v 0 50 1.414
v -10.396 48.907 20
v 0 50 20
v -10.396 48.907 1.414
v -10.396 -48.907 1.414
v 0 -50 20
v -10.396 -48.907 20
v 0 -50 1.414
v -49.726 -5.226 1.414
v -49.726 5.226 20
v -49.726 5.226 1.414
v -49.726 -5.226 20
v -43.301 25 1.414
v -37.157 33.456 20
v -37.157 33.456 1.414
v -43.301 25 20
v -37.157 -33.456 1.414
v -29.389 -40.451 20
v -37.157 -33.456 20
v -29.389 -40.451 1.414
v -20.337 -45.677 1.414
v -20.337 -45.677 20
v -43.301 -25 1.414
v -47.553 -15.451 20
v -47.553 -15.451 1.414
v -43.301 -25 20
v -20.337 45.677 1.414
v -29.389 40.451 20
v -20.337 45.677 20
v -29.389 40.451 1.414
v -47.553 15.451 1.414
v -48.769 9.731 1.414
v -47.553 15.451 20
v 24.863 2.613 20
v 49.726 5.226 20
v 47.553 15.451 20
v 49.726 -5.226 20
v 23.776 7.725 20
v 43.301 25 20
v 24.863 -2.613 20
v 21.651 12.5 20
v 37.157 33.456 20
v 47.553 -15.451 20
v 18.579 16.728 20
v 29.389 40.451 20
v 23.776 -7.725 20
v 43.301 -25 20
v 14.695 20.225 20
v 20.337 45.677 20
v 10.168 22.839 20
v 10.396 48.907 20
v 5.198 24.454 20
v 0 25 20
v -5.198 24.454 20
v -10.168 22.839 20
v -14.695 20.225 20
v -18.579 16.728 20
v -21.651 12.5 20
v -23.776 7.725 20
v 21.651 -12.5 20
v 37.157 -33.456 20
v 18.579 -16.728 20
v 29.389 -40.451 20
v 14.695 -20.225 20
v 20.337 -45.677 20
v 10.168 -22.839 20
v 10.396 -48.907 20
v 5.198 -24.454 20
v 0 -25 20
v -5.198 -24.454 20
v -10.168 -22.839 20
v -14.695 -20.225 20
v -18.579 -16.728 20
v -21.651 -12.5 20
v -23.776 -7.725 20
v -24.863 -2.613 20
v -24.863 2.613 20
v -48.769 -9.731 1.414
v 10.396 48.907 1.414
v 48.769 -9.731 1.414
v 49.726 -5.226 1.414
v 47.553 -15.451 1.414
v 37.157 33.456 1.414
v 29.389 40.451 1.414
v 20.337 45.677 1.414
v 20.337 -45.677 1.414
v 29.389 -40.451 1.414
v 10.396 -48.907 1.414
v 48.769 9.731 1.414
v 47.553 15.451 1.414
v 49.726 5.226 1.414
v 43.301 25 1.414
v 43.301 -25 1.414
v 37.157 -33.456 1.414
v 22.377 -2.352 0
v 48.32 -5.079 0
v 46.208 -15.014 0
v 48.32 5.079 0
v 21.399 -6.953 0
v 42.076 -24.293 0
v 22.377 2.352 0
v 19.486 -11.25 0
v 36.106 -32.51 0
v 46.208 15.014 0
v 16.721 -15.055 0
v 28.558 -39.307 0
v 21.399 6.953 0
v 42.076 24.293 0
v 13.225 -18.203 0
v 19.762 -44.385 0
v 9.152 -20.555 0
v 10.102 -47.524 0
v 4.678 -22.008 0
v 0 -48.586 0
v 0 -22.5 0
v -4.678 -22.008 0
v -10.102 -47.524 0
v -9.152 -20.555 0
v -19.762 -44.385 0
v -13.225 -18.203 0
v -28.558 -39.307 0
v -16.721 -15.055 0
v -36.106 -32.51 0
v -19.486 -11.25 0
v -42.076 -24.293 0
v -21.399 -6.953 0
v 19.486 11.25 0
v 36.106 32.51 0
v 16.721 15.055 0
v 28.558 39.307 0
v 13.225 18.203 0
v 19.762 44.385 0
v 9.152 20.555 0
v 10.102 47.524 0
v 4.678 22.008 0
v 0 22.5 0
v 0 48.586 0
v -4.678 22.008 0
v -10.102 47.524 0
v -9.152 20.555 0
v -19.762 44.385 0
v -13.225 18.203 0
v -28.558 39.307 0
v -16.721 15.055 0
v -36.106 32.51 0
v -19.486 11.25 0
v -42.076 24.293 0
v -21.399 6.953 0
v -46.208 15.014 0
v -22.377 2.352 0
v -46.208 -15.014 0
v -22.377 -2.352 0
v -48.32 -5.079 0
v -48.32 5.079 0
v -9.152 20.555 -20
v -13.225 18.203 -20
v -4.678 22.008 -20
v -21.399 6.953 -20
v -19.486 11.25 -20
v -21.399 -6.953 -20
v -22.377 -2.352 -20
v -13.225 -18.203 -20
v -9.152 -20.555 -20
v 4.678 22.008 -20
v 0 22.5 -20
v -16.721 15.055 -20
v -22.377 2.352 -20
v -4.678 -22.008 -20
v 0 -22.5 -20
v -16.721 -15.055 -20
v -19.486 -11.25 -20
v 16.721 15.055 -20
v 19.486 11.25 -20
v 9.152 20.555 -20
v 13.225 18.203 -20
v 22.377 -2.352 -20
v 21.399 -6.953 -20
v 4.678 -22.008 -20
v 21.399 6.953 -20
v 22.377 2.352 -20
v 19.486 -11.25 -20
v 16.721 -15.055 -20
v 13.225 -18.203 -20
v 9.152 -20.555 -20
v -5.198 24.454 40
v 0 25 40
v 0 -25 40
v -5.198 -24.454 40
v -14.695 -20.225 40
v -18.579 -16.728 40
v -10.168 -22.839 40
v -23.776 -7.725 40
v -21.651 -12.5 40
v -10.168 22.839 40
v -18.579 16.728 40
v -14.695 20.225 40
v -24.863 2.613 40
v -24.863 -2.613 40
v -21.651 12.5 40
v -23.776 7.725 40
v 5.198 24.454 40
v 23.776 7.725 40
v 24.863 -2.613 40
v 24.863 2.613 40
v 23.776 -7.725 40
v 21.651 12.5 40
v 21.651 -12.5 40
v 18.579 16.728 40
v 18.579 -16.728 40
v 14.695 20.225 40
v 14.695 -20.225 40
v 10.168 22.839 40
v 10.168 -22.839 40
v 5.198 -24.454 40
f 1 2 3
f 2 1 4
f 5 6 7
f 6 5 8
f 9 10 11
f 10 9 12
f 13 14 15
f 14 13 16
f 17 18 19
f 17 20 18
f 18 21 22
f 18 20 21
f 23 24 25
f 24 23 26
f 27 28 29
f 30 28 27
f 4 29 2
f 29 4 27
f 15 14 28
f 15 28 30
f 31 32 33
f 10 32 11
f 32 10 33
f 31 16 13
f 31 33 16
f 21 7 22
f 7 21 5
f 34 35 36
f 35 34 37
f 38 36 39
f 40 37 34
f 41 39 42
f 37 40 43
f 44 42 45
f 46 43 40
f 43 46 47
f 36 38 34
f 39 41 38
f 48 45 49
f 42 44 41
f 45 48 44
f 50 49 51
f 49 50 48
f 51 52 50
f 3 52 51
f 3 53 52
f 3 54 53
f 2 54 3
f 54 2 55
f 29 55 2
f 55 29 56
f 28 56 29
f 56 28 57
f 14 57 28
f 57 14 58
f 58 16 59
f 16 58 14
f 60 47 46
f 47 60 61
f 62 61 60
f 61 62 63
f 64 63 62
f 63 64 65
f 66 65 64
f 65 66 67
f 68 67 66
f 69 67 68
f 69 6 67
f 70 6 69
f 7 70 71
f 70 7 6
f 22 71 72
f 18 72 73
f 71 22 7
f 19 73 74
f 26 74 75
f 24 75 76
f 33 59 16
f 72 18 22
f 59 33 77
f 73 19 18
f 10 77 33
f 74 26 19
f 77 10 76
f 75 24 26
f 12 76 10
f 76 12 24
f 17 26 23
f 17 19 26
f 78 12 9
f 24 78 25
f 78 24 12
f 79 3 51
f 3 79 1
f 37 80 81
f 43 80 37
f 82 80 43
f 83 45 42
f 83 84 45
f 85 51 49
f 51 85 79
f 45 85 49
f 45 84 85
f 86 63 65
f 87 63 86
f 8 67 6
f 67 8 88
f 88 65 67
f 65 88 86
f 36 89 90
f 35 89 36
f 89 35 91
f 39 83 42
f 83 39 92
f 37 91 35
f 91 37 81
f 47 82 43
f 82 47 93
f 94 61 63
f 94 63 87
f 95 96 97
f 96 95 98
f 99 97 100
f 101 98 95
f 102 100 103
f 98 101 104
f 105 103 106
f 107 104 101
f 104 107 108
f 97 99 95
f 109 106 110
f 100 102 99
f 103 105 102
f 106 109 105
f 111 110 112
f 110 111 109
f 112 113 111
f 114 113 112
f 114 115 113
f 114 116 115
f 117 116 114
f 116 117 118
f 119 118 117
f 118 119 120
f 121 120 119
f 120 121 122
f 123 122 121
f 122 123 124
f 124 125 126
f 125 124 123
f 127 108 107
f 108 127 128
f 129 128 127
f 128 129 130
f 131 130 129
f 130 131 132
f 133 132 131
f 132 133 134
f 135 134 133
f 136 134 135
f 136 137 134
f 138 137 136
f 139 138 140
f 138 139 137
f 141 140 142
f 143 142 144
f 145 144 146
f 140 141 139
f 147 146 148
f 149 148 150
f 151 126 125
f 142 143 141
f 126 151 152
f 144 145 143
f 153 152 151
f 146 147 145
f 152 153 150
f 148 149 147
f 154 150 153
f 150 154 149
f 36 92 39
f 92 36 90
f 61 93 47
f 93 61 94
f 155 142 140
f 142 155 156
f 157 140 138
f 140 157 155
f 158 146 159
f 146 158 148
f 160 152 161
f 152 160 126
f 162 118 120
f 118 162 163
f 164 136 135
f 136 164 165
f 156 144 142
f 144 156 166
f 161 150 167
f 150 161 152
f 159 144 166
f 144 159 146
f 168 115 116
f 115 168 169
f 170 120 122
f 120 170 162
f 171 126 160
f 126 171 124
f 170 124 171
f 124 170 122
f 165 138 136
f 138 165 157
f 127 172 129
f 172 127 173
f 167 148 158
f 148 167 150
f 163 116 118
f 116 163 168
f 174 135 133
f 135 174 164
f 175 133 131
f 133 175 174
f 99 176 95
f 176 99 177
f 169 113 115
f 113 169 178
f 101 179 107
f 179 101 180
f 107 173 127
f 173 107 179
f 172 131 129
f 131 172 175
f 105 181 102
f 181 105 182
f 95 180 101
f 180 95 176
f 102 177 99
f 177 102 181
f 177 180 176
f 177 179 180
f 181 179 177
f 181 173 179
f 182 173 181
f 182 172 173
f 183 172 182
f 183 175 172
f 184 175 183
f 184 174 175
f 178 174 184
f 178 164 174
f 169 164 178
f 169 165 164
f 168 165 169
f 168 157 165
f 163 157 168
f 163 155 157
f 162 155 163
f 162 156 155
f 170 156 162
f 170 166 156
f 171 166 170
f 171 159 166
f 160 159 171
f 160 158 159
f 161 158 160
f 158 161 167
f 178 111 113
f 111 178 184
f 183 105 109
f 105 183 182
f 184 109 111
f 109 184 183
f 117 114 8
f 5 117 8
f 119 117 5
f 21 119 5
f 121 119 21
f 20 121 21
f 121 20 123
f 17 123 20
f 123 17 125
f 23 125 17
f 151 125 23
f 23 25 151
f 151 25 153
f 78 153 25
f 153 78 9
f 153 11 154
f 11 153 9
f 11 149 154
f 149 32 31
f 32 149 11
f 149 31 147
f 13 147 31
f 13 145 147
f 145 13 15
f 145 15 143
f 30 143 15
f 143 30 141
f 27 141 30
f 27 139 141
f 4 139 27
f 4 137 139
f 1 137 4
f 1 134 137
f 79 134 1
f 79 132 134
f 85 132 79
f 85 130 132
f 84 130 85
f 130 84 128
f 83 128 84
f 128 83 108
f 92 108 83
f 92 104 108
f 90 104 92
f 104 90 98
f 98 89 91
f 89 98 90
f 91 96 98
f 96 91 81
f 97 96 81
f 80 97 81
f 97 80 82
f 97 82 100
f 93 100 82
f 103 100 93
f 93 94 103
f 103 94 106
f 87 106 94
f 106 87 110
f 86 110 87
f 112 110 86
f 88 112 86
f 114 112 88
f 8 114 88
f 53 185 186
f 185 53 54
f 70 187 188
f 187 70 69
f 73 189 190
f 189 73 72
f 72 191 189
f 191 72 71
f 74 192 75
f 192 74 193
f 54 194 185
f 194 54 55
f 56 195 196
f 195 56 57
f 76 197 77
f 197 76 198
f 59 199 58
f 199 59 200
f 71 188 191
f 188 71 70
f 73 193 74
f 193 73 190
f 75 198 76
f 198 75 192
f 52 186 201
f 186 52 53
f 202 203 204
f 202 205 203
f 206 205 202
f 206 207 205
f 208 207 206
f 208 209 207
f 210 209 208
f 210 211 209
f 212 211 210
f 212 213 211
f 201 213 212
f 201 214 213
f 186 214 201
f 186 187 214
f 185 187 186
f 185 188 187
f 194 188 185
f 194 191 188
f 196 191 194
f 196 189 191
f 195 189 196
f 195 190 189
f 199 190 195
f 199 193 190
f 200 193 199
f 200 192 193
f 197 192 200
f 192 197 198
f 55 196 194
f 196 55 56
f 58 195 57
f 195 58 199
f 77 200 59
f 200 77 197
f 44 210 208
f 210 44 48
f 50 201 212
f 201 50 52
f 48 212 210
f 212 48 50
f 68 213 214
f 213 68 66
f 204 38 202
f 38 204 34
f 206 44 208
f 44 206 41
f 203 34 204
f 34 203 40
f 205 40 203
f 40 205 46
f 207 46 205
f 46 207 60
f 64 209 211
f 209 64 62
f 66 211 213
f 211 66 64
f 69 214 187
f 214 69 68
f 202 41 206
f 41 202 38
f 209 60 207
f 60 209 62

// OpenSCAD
// file: cube_link.scad
module cube_link(breadth= 10, depth= 10, length = 20, joint_clearance = 10){
    L = length;
    jc = joint_clearance;
    l = L - jc;
    r = ((l - L)/2) + jc;
    rotate([0, 90, 0]){
        union(){
            translate(v = [0, 0, jc/2]){
                cube([breadth, depth, l], center = true);
            }
            translate(v = [0, 0, -((l/2 - r) + jc/2)]){
                cube([0.6*breadth, depth, jc], center = true);
            }
        }
    }
}

/*
//  UNCOMMENT TO TEST MODULE
translate(v = [0, 0, 0])
cube_link(10, 10, 20, 5);
*/
// file: pin_joint_knuckle.scad
module pin_joint_knuckle(width, radius){
    diameter = 2*radius;
    union(){
        cylinder(1.1*width, 0.38*radius, 0.38*radius, center = true);
        cylinder(0.6*width, radius, radius, center = true);
        translate(v = [radius/2, 0, 0]){
            cube([radius, diameter, 0.6*width], center = true);
        }
    }
}

/*
UNCOMMENT TO TEST MODULE
pin_joint_knuckle(100, 100);
*/
// file: pin_joint_bearing.scad
module pin_joint_bearing(width, radius){
    difference(){
        difference(){
            union(){
                translate(v = [-radius/2, 0, 0]){
                    cube([radius, 2*radius, width], center = true);
                }
                cylinder(h = width, r = radius, center = true);
            }
            cube([2.2*radius, 2.2*radius, 0.65*width], center = true);
        }
        translate(v = [0, 0, 0]){
            cylinder(h = 1.1*width, r = 0.4*radius, center = true);
        }
    }
}

/*
UNCOMMENT TO TEST MODULE
pin_joint_bearing(100, 100);
*/
// file: swivel_joint_knuckle.scad
module swivel_joint_knuckle(height, radius, chamfer_size){
    difference(){
        union(){
            translate(v = [0, 0, height/2]){
                cylinder(h = height, r = radius, center = true);
            }
            translate(v = [0, 0, -height/2]){
                cylinder(h = height, r = 0.45*radius, center = true);
            }
        }
        
        cs = chamfer_size;
        
        rotate_extrude(convexity = 10){
            translate(v = [radius, 0 ,0]){
                rotate([0, 0, 45]){
                    square(size = [cs, cs], center = true);
                }
            }
        }
    }
}

/*
//  UNCOMMENT TO TEST MODULE
swivel_joint_knuckle(50, 100, 5);
*/
// file: swivel_joint_bearing.scad
module swivel_joint_bearing (height, radius, chamfer_size){
    difference(){
        difference(){
            cylinder(h = height, r = radius, center = true);
            cylinder(h = 1.1*height, r = 0.5*radius, center = true);
        }
        
        cs = chamfer_size;
        
        translate(v = [0, 0, height/2]){
            rotate_extrude(convexity = 10){
                translate(v = [radius, 0, 0]){
                    rotate([0, 0, 45]){
                        square(size = [cs, cs], center = true);
                    }
                }
            }
        }
    }
}

/*
// UNCOMMENT TO TEST THIS MODULE
swivel_joint_bearing(100, 100, 10);
*/
// main file
include <swivel_joint_bearing.scad>
include <swivel_joint_knuckle.scad>
include <pin_joint_bearing.scad>
include <pin_joint_knuckle.scad>
include <cube_link.scad>

module assembly_7(h_j6k = 20, r_j6k = 50, h_l6 = 20, r_l6 = 25, joint_chamfer = 2){
    rotate([90, -90, 0]){
        union(){
            //  joint 6 knuckle
            rotate([0, 90, 0]){
                swivel_joint_knuckle(h_j6k, r_j6k, joint_chamfer);
            }
            //  link6
            translate(v = [h_j6k + h_l6/2, 0, 0]){
                rotate([0, 90, 0]){
                    cylinder(h = h_l6, r = r_l6, center = true);
                }
            }
        }
    }
}
assembly_7();
